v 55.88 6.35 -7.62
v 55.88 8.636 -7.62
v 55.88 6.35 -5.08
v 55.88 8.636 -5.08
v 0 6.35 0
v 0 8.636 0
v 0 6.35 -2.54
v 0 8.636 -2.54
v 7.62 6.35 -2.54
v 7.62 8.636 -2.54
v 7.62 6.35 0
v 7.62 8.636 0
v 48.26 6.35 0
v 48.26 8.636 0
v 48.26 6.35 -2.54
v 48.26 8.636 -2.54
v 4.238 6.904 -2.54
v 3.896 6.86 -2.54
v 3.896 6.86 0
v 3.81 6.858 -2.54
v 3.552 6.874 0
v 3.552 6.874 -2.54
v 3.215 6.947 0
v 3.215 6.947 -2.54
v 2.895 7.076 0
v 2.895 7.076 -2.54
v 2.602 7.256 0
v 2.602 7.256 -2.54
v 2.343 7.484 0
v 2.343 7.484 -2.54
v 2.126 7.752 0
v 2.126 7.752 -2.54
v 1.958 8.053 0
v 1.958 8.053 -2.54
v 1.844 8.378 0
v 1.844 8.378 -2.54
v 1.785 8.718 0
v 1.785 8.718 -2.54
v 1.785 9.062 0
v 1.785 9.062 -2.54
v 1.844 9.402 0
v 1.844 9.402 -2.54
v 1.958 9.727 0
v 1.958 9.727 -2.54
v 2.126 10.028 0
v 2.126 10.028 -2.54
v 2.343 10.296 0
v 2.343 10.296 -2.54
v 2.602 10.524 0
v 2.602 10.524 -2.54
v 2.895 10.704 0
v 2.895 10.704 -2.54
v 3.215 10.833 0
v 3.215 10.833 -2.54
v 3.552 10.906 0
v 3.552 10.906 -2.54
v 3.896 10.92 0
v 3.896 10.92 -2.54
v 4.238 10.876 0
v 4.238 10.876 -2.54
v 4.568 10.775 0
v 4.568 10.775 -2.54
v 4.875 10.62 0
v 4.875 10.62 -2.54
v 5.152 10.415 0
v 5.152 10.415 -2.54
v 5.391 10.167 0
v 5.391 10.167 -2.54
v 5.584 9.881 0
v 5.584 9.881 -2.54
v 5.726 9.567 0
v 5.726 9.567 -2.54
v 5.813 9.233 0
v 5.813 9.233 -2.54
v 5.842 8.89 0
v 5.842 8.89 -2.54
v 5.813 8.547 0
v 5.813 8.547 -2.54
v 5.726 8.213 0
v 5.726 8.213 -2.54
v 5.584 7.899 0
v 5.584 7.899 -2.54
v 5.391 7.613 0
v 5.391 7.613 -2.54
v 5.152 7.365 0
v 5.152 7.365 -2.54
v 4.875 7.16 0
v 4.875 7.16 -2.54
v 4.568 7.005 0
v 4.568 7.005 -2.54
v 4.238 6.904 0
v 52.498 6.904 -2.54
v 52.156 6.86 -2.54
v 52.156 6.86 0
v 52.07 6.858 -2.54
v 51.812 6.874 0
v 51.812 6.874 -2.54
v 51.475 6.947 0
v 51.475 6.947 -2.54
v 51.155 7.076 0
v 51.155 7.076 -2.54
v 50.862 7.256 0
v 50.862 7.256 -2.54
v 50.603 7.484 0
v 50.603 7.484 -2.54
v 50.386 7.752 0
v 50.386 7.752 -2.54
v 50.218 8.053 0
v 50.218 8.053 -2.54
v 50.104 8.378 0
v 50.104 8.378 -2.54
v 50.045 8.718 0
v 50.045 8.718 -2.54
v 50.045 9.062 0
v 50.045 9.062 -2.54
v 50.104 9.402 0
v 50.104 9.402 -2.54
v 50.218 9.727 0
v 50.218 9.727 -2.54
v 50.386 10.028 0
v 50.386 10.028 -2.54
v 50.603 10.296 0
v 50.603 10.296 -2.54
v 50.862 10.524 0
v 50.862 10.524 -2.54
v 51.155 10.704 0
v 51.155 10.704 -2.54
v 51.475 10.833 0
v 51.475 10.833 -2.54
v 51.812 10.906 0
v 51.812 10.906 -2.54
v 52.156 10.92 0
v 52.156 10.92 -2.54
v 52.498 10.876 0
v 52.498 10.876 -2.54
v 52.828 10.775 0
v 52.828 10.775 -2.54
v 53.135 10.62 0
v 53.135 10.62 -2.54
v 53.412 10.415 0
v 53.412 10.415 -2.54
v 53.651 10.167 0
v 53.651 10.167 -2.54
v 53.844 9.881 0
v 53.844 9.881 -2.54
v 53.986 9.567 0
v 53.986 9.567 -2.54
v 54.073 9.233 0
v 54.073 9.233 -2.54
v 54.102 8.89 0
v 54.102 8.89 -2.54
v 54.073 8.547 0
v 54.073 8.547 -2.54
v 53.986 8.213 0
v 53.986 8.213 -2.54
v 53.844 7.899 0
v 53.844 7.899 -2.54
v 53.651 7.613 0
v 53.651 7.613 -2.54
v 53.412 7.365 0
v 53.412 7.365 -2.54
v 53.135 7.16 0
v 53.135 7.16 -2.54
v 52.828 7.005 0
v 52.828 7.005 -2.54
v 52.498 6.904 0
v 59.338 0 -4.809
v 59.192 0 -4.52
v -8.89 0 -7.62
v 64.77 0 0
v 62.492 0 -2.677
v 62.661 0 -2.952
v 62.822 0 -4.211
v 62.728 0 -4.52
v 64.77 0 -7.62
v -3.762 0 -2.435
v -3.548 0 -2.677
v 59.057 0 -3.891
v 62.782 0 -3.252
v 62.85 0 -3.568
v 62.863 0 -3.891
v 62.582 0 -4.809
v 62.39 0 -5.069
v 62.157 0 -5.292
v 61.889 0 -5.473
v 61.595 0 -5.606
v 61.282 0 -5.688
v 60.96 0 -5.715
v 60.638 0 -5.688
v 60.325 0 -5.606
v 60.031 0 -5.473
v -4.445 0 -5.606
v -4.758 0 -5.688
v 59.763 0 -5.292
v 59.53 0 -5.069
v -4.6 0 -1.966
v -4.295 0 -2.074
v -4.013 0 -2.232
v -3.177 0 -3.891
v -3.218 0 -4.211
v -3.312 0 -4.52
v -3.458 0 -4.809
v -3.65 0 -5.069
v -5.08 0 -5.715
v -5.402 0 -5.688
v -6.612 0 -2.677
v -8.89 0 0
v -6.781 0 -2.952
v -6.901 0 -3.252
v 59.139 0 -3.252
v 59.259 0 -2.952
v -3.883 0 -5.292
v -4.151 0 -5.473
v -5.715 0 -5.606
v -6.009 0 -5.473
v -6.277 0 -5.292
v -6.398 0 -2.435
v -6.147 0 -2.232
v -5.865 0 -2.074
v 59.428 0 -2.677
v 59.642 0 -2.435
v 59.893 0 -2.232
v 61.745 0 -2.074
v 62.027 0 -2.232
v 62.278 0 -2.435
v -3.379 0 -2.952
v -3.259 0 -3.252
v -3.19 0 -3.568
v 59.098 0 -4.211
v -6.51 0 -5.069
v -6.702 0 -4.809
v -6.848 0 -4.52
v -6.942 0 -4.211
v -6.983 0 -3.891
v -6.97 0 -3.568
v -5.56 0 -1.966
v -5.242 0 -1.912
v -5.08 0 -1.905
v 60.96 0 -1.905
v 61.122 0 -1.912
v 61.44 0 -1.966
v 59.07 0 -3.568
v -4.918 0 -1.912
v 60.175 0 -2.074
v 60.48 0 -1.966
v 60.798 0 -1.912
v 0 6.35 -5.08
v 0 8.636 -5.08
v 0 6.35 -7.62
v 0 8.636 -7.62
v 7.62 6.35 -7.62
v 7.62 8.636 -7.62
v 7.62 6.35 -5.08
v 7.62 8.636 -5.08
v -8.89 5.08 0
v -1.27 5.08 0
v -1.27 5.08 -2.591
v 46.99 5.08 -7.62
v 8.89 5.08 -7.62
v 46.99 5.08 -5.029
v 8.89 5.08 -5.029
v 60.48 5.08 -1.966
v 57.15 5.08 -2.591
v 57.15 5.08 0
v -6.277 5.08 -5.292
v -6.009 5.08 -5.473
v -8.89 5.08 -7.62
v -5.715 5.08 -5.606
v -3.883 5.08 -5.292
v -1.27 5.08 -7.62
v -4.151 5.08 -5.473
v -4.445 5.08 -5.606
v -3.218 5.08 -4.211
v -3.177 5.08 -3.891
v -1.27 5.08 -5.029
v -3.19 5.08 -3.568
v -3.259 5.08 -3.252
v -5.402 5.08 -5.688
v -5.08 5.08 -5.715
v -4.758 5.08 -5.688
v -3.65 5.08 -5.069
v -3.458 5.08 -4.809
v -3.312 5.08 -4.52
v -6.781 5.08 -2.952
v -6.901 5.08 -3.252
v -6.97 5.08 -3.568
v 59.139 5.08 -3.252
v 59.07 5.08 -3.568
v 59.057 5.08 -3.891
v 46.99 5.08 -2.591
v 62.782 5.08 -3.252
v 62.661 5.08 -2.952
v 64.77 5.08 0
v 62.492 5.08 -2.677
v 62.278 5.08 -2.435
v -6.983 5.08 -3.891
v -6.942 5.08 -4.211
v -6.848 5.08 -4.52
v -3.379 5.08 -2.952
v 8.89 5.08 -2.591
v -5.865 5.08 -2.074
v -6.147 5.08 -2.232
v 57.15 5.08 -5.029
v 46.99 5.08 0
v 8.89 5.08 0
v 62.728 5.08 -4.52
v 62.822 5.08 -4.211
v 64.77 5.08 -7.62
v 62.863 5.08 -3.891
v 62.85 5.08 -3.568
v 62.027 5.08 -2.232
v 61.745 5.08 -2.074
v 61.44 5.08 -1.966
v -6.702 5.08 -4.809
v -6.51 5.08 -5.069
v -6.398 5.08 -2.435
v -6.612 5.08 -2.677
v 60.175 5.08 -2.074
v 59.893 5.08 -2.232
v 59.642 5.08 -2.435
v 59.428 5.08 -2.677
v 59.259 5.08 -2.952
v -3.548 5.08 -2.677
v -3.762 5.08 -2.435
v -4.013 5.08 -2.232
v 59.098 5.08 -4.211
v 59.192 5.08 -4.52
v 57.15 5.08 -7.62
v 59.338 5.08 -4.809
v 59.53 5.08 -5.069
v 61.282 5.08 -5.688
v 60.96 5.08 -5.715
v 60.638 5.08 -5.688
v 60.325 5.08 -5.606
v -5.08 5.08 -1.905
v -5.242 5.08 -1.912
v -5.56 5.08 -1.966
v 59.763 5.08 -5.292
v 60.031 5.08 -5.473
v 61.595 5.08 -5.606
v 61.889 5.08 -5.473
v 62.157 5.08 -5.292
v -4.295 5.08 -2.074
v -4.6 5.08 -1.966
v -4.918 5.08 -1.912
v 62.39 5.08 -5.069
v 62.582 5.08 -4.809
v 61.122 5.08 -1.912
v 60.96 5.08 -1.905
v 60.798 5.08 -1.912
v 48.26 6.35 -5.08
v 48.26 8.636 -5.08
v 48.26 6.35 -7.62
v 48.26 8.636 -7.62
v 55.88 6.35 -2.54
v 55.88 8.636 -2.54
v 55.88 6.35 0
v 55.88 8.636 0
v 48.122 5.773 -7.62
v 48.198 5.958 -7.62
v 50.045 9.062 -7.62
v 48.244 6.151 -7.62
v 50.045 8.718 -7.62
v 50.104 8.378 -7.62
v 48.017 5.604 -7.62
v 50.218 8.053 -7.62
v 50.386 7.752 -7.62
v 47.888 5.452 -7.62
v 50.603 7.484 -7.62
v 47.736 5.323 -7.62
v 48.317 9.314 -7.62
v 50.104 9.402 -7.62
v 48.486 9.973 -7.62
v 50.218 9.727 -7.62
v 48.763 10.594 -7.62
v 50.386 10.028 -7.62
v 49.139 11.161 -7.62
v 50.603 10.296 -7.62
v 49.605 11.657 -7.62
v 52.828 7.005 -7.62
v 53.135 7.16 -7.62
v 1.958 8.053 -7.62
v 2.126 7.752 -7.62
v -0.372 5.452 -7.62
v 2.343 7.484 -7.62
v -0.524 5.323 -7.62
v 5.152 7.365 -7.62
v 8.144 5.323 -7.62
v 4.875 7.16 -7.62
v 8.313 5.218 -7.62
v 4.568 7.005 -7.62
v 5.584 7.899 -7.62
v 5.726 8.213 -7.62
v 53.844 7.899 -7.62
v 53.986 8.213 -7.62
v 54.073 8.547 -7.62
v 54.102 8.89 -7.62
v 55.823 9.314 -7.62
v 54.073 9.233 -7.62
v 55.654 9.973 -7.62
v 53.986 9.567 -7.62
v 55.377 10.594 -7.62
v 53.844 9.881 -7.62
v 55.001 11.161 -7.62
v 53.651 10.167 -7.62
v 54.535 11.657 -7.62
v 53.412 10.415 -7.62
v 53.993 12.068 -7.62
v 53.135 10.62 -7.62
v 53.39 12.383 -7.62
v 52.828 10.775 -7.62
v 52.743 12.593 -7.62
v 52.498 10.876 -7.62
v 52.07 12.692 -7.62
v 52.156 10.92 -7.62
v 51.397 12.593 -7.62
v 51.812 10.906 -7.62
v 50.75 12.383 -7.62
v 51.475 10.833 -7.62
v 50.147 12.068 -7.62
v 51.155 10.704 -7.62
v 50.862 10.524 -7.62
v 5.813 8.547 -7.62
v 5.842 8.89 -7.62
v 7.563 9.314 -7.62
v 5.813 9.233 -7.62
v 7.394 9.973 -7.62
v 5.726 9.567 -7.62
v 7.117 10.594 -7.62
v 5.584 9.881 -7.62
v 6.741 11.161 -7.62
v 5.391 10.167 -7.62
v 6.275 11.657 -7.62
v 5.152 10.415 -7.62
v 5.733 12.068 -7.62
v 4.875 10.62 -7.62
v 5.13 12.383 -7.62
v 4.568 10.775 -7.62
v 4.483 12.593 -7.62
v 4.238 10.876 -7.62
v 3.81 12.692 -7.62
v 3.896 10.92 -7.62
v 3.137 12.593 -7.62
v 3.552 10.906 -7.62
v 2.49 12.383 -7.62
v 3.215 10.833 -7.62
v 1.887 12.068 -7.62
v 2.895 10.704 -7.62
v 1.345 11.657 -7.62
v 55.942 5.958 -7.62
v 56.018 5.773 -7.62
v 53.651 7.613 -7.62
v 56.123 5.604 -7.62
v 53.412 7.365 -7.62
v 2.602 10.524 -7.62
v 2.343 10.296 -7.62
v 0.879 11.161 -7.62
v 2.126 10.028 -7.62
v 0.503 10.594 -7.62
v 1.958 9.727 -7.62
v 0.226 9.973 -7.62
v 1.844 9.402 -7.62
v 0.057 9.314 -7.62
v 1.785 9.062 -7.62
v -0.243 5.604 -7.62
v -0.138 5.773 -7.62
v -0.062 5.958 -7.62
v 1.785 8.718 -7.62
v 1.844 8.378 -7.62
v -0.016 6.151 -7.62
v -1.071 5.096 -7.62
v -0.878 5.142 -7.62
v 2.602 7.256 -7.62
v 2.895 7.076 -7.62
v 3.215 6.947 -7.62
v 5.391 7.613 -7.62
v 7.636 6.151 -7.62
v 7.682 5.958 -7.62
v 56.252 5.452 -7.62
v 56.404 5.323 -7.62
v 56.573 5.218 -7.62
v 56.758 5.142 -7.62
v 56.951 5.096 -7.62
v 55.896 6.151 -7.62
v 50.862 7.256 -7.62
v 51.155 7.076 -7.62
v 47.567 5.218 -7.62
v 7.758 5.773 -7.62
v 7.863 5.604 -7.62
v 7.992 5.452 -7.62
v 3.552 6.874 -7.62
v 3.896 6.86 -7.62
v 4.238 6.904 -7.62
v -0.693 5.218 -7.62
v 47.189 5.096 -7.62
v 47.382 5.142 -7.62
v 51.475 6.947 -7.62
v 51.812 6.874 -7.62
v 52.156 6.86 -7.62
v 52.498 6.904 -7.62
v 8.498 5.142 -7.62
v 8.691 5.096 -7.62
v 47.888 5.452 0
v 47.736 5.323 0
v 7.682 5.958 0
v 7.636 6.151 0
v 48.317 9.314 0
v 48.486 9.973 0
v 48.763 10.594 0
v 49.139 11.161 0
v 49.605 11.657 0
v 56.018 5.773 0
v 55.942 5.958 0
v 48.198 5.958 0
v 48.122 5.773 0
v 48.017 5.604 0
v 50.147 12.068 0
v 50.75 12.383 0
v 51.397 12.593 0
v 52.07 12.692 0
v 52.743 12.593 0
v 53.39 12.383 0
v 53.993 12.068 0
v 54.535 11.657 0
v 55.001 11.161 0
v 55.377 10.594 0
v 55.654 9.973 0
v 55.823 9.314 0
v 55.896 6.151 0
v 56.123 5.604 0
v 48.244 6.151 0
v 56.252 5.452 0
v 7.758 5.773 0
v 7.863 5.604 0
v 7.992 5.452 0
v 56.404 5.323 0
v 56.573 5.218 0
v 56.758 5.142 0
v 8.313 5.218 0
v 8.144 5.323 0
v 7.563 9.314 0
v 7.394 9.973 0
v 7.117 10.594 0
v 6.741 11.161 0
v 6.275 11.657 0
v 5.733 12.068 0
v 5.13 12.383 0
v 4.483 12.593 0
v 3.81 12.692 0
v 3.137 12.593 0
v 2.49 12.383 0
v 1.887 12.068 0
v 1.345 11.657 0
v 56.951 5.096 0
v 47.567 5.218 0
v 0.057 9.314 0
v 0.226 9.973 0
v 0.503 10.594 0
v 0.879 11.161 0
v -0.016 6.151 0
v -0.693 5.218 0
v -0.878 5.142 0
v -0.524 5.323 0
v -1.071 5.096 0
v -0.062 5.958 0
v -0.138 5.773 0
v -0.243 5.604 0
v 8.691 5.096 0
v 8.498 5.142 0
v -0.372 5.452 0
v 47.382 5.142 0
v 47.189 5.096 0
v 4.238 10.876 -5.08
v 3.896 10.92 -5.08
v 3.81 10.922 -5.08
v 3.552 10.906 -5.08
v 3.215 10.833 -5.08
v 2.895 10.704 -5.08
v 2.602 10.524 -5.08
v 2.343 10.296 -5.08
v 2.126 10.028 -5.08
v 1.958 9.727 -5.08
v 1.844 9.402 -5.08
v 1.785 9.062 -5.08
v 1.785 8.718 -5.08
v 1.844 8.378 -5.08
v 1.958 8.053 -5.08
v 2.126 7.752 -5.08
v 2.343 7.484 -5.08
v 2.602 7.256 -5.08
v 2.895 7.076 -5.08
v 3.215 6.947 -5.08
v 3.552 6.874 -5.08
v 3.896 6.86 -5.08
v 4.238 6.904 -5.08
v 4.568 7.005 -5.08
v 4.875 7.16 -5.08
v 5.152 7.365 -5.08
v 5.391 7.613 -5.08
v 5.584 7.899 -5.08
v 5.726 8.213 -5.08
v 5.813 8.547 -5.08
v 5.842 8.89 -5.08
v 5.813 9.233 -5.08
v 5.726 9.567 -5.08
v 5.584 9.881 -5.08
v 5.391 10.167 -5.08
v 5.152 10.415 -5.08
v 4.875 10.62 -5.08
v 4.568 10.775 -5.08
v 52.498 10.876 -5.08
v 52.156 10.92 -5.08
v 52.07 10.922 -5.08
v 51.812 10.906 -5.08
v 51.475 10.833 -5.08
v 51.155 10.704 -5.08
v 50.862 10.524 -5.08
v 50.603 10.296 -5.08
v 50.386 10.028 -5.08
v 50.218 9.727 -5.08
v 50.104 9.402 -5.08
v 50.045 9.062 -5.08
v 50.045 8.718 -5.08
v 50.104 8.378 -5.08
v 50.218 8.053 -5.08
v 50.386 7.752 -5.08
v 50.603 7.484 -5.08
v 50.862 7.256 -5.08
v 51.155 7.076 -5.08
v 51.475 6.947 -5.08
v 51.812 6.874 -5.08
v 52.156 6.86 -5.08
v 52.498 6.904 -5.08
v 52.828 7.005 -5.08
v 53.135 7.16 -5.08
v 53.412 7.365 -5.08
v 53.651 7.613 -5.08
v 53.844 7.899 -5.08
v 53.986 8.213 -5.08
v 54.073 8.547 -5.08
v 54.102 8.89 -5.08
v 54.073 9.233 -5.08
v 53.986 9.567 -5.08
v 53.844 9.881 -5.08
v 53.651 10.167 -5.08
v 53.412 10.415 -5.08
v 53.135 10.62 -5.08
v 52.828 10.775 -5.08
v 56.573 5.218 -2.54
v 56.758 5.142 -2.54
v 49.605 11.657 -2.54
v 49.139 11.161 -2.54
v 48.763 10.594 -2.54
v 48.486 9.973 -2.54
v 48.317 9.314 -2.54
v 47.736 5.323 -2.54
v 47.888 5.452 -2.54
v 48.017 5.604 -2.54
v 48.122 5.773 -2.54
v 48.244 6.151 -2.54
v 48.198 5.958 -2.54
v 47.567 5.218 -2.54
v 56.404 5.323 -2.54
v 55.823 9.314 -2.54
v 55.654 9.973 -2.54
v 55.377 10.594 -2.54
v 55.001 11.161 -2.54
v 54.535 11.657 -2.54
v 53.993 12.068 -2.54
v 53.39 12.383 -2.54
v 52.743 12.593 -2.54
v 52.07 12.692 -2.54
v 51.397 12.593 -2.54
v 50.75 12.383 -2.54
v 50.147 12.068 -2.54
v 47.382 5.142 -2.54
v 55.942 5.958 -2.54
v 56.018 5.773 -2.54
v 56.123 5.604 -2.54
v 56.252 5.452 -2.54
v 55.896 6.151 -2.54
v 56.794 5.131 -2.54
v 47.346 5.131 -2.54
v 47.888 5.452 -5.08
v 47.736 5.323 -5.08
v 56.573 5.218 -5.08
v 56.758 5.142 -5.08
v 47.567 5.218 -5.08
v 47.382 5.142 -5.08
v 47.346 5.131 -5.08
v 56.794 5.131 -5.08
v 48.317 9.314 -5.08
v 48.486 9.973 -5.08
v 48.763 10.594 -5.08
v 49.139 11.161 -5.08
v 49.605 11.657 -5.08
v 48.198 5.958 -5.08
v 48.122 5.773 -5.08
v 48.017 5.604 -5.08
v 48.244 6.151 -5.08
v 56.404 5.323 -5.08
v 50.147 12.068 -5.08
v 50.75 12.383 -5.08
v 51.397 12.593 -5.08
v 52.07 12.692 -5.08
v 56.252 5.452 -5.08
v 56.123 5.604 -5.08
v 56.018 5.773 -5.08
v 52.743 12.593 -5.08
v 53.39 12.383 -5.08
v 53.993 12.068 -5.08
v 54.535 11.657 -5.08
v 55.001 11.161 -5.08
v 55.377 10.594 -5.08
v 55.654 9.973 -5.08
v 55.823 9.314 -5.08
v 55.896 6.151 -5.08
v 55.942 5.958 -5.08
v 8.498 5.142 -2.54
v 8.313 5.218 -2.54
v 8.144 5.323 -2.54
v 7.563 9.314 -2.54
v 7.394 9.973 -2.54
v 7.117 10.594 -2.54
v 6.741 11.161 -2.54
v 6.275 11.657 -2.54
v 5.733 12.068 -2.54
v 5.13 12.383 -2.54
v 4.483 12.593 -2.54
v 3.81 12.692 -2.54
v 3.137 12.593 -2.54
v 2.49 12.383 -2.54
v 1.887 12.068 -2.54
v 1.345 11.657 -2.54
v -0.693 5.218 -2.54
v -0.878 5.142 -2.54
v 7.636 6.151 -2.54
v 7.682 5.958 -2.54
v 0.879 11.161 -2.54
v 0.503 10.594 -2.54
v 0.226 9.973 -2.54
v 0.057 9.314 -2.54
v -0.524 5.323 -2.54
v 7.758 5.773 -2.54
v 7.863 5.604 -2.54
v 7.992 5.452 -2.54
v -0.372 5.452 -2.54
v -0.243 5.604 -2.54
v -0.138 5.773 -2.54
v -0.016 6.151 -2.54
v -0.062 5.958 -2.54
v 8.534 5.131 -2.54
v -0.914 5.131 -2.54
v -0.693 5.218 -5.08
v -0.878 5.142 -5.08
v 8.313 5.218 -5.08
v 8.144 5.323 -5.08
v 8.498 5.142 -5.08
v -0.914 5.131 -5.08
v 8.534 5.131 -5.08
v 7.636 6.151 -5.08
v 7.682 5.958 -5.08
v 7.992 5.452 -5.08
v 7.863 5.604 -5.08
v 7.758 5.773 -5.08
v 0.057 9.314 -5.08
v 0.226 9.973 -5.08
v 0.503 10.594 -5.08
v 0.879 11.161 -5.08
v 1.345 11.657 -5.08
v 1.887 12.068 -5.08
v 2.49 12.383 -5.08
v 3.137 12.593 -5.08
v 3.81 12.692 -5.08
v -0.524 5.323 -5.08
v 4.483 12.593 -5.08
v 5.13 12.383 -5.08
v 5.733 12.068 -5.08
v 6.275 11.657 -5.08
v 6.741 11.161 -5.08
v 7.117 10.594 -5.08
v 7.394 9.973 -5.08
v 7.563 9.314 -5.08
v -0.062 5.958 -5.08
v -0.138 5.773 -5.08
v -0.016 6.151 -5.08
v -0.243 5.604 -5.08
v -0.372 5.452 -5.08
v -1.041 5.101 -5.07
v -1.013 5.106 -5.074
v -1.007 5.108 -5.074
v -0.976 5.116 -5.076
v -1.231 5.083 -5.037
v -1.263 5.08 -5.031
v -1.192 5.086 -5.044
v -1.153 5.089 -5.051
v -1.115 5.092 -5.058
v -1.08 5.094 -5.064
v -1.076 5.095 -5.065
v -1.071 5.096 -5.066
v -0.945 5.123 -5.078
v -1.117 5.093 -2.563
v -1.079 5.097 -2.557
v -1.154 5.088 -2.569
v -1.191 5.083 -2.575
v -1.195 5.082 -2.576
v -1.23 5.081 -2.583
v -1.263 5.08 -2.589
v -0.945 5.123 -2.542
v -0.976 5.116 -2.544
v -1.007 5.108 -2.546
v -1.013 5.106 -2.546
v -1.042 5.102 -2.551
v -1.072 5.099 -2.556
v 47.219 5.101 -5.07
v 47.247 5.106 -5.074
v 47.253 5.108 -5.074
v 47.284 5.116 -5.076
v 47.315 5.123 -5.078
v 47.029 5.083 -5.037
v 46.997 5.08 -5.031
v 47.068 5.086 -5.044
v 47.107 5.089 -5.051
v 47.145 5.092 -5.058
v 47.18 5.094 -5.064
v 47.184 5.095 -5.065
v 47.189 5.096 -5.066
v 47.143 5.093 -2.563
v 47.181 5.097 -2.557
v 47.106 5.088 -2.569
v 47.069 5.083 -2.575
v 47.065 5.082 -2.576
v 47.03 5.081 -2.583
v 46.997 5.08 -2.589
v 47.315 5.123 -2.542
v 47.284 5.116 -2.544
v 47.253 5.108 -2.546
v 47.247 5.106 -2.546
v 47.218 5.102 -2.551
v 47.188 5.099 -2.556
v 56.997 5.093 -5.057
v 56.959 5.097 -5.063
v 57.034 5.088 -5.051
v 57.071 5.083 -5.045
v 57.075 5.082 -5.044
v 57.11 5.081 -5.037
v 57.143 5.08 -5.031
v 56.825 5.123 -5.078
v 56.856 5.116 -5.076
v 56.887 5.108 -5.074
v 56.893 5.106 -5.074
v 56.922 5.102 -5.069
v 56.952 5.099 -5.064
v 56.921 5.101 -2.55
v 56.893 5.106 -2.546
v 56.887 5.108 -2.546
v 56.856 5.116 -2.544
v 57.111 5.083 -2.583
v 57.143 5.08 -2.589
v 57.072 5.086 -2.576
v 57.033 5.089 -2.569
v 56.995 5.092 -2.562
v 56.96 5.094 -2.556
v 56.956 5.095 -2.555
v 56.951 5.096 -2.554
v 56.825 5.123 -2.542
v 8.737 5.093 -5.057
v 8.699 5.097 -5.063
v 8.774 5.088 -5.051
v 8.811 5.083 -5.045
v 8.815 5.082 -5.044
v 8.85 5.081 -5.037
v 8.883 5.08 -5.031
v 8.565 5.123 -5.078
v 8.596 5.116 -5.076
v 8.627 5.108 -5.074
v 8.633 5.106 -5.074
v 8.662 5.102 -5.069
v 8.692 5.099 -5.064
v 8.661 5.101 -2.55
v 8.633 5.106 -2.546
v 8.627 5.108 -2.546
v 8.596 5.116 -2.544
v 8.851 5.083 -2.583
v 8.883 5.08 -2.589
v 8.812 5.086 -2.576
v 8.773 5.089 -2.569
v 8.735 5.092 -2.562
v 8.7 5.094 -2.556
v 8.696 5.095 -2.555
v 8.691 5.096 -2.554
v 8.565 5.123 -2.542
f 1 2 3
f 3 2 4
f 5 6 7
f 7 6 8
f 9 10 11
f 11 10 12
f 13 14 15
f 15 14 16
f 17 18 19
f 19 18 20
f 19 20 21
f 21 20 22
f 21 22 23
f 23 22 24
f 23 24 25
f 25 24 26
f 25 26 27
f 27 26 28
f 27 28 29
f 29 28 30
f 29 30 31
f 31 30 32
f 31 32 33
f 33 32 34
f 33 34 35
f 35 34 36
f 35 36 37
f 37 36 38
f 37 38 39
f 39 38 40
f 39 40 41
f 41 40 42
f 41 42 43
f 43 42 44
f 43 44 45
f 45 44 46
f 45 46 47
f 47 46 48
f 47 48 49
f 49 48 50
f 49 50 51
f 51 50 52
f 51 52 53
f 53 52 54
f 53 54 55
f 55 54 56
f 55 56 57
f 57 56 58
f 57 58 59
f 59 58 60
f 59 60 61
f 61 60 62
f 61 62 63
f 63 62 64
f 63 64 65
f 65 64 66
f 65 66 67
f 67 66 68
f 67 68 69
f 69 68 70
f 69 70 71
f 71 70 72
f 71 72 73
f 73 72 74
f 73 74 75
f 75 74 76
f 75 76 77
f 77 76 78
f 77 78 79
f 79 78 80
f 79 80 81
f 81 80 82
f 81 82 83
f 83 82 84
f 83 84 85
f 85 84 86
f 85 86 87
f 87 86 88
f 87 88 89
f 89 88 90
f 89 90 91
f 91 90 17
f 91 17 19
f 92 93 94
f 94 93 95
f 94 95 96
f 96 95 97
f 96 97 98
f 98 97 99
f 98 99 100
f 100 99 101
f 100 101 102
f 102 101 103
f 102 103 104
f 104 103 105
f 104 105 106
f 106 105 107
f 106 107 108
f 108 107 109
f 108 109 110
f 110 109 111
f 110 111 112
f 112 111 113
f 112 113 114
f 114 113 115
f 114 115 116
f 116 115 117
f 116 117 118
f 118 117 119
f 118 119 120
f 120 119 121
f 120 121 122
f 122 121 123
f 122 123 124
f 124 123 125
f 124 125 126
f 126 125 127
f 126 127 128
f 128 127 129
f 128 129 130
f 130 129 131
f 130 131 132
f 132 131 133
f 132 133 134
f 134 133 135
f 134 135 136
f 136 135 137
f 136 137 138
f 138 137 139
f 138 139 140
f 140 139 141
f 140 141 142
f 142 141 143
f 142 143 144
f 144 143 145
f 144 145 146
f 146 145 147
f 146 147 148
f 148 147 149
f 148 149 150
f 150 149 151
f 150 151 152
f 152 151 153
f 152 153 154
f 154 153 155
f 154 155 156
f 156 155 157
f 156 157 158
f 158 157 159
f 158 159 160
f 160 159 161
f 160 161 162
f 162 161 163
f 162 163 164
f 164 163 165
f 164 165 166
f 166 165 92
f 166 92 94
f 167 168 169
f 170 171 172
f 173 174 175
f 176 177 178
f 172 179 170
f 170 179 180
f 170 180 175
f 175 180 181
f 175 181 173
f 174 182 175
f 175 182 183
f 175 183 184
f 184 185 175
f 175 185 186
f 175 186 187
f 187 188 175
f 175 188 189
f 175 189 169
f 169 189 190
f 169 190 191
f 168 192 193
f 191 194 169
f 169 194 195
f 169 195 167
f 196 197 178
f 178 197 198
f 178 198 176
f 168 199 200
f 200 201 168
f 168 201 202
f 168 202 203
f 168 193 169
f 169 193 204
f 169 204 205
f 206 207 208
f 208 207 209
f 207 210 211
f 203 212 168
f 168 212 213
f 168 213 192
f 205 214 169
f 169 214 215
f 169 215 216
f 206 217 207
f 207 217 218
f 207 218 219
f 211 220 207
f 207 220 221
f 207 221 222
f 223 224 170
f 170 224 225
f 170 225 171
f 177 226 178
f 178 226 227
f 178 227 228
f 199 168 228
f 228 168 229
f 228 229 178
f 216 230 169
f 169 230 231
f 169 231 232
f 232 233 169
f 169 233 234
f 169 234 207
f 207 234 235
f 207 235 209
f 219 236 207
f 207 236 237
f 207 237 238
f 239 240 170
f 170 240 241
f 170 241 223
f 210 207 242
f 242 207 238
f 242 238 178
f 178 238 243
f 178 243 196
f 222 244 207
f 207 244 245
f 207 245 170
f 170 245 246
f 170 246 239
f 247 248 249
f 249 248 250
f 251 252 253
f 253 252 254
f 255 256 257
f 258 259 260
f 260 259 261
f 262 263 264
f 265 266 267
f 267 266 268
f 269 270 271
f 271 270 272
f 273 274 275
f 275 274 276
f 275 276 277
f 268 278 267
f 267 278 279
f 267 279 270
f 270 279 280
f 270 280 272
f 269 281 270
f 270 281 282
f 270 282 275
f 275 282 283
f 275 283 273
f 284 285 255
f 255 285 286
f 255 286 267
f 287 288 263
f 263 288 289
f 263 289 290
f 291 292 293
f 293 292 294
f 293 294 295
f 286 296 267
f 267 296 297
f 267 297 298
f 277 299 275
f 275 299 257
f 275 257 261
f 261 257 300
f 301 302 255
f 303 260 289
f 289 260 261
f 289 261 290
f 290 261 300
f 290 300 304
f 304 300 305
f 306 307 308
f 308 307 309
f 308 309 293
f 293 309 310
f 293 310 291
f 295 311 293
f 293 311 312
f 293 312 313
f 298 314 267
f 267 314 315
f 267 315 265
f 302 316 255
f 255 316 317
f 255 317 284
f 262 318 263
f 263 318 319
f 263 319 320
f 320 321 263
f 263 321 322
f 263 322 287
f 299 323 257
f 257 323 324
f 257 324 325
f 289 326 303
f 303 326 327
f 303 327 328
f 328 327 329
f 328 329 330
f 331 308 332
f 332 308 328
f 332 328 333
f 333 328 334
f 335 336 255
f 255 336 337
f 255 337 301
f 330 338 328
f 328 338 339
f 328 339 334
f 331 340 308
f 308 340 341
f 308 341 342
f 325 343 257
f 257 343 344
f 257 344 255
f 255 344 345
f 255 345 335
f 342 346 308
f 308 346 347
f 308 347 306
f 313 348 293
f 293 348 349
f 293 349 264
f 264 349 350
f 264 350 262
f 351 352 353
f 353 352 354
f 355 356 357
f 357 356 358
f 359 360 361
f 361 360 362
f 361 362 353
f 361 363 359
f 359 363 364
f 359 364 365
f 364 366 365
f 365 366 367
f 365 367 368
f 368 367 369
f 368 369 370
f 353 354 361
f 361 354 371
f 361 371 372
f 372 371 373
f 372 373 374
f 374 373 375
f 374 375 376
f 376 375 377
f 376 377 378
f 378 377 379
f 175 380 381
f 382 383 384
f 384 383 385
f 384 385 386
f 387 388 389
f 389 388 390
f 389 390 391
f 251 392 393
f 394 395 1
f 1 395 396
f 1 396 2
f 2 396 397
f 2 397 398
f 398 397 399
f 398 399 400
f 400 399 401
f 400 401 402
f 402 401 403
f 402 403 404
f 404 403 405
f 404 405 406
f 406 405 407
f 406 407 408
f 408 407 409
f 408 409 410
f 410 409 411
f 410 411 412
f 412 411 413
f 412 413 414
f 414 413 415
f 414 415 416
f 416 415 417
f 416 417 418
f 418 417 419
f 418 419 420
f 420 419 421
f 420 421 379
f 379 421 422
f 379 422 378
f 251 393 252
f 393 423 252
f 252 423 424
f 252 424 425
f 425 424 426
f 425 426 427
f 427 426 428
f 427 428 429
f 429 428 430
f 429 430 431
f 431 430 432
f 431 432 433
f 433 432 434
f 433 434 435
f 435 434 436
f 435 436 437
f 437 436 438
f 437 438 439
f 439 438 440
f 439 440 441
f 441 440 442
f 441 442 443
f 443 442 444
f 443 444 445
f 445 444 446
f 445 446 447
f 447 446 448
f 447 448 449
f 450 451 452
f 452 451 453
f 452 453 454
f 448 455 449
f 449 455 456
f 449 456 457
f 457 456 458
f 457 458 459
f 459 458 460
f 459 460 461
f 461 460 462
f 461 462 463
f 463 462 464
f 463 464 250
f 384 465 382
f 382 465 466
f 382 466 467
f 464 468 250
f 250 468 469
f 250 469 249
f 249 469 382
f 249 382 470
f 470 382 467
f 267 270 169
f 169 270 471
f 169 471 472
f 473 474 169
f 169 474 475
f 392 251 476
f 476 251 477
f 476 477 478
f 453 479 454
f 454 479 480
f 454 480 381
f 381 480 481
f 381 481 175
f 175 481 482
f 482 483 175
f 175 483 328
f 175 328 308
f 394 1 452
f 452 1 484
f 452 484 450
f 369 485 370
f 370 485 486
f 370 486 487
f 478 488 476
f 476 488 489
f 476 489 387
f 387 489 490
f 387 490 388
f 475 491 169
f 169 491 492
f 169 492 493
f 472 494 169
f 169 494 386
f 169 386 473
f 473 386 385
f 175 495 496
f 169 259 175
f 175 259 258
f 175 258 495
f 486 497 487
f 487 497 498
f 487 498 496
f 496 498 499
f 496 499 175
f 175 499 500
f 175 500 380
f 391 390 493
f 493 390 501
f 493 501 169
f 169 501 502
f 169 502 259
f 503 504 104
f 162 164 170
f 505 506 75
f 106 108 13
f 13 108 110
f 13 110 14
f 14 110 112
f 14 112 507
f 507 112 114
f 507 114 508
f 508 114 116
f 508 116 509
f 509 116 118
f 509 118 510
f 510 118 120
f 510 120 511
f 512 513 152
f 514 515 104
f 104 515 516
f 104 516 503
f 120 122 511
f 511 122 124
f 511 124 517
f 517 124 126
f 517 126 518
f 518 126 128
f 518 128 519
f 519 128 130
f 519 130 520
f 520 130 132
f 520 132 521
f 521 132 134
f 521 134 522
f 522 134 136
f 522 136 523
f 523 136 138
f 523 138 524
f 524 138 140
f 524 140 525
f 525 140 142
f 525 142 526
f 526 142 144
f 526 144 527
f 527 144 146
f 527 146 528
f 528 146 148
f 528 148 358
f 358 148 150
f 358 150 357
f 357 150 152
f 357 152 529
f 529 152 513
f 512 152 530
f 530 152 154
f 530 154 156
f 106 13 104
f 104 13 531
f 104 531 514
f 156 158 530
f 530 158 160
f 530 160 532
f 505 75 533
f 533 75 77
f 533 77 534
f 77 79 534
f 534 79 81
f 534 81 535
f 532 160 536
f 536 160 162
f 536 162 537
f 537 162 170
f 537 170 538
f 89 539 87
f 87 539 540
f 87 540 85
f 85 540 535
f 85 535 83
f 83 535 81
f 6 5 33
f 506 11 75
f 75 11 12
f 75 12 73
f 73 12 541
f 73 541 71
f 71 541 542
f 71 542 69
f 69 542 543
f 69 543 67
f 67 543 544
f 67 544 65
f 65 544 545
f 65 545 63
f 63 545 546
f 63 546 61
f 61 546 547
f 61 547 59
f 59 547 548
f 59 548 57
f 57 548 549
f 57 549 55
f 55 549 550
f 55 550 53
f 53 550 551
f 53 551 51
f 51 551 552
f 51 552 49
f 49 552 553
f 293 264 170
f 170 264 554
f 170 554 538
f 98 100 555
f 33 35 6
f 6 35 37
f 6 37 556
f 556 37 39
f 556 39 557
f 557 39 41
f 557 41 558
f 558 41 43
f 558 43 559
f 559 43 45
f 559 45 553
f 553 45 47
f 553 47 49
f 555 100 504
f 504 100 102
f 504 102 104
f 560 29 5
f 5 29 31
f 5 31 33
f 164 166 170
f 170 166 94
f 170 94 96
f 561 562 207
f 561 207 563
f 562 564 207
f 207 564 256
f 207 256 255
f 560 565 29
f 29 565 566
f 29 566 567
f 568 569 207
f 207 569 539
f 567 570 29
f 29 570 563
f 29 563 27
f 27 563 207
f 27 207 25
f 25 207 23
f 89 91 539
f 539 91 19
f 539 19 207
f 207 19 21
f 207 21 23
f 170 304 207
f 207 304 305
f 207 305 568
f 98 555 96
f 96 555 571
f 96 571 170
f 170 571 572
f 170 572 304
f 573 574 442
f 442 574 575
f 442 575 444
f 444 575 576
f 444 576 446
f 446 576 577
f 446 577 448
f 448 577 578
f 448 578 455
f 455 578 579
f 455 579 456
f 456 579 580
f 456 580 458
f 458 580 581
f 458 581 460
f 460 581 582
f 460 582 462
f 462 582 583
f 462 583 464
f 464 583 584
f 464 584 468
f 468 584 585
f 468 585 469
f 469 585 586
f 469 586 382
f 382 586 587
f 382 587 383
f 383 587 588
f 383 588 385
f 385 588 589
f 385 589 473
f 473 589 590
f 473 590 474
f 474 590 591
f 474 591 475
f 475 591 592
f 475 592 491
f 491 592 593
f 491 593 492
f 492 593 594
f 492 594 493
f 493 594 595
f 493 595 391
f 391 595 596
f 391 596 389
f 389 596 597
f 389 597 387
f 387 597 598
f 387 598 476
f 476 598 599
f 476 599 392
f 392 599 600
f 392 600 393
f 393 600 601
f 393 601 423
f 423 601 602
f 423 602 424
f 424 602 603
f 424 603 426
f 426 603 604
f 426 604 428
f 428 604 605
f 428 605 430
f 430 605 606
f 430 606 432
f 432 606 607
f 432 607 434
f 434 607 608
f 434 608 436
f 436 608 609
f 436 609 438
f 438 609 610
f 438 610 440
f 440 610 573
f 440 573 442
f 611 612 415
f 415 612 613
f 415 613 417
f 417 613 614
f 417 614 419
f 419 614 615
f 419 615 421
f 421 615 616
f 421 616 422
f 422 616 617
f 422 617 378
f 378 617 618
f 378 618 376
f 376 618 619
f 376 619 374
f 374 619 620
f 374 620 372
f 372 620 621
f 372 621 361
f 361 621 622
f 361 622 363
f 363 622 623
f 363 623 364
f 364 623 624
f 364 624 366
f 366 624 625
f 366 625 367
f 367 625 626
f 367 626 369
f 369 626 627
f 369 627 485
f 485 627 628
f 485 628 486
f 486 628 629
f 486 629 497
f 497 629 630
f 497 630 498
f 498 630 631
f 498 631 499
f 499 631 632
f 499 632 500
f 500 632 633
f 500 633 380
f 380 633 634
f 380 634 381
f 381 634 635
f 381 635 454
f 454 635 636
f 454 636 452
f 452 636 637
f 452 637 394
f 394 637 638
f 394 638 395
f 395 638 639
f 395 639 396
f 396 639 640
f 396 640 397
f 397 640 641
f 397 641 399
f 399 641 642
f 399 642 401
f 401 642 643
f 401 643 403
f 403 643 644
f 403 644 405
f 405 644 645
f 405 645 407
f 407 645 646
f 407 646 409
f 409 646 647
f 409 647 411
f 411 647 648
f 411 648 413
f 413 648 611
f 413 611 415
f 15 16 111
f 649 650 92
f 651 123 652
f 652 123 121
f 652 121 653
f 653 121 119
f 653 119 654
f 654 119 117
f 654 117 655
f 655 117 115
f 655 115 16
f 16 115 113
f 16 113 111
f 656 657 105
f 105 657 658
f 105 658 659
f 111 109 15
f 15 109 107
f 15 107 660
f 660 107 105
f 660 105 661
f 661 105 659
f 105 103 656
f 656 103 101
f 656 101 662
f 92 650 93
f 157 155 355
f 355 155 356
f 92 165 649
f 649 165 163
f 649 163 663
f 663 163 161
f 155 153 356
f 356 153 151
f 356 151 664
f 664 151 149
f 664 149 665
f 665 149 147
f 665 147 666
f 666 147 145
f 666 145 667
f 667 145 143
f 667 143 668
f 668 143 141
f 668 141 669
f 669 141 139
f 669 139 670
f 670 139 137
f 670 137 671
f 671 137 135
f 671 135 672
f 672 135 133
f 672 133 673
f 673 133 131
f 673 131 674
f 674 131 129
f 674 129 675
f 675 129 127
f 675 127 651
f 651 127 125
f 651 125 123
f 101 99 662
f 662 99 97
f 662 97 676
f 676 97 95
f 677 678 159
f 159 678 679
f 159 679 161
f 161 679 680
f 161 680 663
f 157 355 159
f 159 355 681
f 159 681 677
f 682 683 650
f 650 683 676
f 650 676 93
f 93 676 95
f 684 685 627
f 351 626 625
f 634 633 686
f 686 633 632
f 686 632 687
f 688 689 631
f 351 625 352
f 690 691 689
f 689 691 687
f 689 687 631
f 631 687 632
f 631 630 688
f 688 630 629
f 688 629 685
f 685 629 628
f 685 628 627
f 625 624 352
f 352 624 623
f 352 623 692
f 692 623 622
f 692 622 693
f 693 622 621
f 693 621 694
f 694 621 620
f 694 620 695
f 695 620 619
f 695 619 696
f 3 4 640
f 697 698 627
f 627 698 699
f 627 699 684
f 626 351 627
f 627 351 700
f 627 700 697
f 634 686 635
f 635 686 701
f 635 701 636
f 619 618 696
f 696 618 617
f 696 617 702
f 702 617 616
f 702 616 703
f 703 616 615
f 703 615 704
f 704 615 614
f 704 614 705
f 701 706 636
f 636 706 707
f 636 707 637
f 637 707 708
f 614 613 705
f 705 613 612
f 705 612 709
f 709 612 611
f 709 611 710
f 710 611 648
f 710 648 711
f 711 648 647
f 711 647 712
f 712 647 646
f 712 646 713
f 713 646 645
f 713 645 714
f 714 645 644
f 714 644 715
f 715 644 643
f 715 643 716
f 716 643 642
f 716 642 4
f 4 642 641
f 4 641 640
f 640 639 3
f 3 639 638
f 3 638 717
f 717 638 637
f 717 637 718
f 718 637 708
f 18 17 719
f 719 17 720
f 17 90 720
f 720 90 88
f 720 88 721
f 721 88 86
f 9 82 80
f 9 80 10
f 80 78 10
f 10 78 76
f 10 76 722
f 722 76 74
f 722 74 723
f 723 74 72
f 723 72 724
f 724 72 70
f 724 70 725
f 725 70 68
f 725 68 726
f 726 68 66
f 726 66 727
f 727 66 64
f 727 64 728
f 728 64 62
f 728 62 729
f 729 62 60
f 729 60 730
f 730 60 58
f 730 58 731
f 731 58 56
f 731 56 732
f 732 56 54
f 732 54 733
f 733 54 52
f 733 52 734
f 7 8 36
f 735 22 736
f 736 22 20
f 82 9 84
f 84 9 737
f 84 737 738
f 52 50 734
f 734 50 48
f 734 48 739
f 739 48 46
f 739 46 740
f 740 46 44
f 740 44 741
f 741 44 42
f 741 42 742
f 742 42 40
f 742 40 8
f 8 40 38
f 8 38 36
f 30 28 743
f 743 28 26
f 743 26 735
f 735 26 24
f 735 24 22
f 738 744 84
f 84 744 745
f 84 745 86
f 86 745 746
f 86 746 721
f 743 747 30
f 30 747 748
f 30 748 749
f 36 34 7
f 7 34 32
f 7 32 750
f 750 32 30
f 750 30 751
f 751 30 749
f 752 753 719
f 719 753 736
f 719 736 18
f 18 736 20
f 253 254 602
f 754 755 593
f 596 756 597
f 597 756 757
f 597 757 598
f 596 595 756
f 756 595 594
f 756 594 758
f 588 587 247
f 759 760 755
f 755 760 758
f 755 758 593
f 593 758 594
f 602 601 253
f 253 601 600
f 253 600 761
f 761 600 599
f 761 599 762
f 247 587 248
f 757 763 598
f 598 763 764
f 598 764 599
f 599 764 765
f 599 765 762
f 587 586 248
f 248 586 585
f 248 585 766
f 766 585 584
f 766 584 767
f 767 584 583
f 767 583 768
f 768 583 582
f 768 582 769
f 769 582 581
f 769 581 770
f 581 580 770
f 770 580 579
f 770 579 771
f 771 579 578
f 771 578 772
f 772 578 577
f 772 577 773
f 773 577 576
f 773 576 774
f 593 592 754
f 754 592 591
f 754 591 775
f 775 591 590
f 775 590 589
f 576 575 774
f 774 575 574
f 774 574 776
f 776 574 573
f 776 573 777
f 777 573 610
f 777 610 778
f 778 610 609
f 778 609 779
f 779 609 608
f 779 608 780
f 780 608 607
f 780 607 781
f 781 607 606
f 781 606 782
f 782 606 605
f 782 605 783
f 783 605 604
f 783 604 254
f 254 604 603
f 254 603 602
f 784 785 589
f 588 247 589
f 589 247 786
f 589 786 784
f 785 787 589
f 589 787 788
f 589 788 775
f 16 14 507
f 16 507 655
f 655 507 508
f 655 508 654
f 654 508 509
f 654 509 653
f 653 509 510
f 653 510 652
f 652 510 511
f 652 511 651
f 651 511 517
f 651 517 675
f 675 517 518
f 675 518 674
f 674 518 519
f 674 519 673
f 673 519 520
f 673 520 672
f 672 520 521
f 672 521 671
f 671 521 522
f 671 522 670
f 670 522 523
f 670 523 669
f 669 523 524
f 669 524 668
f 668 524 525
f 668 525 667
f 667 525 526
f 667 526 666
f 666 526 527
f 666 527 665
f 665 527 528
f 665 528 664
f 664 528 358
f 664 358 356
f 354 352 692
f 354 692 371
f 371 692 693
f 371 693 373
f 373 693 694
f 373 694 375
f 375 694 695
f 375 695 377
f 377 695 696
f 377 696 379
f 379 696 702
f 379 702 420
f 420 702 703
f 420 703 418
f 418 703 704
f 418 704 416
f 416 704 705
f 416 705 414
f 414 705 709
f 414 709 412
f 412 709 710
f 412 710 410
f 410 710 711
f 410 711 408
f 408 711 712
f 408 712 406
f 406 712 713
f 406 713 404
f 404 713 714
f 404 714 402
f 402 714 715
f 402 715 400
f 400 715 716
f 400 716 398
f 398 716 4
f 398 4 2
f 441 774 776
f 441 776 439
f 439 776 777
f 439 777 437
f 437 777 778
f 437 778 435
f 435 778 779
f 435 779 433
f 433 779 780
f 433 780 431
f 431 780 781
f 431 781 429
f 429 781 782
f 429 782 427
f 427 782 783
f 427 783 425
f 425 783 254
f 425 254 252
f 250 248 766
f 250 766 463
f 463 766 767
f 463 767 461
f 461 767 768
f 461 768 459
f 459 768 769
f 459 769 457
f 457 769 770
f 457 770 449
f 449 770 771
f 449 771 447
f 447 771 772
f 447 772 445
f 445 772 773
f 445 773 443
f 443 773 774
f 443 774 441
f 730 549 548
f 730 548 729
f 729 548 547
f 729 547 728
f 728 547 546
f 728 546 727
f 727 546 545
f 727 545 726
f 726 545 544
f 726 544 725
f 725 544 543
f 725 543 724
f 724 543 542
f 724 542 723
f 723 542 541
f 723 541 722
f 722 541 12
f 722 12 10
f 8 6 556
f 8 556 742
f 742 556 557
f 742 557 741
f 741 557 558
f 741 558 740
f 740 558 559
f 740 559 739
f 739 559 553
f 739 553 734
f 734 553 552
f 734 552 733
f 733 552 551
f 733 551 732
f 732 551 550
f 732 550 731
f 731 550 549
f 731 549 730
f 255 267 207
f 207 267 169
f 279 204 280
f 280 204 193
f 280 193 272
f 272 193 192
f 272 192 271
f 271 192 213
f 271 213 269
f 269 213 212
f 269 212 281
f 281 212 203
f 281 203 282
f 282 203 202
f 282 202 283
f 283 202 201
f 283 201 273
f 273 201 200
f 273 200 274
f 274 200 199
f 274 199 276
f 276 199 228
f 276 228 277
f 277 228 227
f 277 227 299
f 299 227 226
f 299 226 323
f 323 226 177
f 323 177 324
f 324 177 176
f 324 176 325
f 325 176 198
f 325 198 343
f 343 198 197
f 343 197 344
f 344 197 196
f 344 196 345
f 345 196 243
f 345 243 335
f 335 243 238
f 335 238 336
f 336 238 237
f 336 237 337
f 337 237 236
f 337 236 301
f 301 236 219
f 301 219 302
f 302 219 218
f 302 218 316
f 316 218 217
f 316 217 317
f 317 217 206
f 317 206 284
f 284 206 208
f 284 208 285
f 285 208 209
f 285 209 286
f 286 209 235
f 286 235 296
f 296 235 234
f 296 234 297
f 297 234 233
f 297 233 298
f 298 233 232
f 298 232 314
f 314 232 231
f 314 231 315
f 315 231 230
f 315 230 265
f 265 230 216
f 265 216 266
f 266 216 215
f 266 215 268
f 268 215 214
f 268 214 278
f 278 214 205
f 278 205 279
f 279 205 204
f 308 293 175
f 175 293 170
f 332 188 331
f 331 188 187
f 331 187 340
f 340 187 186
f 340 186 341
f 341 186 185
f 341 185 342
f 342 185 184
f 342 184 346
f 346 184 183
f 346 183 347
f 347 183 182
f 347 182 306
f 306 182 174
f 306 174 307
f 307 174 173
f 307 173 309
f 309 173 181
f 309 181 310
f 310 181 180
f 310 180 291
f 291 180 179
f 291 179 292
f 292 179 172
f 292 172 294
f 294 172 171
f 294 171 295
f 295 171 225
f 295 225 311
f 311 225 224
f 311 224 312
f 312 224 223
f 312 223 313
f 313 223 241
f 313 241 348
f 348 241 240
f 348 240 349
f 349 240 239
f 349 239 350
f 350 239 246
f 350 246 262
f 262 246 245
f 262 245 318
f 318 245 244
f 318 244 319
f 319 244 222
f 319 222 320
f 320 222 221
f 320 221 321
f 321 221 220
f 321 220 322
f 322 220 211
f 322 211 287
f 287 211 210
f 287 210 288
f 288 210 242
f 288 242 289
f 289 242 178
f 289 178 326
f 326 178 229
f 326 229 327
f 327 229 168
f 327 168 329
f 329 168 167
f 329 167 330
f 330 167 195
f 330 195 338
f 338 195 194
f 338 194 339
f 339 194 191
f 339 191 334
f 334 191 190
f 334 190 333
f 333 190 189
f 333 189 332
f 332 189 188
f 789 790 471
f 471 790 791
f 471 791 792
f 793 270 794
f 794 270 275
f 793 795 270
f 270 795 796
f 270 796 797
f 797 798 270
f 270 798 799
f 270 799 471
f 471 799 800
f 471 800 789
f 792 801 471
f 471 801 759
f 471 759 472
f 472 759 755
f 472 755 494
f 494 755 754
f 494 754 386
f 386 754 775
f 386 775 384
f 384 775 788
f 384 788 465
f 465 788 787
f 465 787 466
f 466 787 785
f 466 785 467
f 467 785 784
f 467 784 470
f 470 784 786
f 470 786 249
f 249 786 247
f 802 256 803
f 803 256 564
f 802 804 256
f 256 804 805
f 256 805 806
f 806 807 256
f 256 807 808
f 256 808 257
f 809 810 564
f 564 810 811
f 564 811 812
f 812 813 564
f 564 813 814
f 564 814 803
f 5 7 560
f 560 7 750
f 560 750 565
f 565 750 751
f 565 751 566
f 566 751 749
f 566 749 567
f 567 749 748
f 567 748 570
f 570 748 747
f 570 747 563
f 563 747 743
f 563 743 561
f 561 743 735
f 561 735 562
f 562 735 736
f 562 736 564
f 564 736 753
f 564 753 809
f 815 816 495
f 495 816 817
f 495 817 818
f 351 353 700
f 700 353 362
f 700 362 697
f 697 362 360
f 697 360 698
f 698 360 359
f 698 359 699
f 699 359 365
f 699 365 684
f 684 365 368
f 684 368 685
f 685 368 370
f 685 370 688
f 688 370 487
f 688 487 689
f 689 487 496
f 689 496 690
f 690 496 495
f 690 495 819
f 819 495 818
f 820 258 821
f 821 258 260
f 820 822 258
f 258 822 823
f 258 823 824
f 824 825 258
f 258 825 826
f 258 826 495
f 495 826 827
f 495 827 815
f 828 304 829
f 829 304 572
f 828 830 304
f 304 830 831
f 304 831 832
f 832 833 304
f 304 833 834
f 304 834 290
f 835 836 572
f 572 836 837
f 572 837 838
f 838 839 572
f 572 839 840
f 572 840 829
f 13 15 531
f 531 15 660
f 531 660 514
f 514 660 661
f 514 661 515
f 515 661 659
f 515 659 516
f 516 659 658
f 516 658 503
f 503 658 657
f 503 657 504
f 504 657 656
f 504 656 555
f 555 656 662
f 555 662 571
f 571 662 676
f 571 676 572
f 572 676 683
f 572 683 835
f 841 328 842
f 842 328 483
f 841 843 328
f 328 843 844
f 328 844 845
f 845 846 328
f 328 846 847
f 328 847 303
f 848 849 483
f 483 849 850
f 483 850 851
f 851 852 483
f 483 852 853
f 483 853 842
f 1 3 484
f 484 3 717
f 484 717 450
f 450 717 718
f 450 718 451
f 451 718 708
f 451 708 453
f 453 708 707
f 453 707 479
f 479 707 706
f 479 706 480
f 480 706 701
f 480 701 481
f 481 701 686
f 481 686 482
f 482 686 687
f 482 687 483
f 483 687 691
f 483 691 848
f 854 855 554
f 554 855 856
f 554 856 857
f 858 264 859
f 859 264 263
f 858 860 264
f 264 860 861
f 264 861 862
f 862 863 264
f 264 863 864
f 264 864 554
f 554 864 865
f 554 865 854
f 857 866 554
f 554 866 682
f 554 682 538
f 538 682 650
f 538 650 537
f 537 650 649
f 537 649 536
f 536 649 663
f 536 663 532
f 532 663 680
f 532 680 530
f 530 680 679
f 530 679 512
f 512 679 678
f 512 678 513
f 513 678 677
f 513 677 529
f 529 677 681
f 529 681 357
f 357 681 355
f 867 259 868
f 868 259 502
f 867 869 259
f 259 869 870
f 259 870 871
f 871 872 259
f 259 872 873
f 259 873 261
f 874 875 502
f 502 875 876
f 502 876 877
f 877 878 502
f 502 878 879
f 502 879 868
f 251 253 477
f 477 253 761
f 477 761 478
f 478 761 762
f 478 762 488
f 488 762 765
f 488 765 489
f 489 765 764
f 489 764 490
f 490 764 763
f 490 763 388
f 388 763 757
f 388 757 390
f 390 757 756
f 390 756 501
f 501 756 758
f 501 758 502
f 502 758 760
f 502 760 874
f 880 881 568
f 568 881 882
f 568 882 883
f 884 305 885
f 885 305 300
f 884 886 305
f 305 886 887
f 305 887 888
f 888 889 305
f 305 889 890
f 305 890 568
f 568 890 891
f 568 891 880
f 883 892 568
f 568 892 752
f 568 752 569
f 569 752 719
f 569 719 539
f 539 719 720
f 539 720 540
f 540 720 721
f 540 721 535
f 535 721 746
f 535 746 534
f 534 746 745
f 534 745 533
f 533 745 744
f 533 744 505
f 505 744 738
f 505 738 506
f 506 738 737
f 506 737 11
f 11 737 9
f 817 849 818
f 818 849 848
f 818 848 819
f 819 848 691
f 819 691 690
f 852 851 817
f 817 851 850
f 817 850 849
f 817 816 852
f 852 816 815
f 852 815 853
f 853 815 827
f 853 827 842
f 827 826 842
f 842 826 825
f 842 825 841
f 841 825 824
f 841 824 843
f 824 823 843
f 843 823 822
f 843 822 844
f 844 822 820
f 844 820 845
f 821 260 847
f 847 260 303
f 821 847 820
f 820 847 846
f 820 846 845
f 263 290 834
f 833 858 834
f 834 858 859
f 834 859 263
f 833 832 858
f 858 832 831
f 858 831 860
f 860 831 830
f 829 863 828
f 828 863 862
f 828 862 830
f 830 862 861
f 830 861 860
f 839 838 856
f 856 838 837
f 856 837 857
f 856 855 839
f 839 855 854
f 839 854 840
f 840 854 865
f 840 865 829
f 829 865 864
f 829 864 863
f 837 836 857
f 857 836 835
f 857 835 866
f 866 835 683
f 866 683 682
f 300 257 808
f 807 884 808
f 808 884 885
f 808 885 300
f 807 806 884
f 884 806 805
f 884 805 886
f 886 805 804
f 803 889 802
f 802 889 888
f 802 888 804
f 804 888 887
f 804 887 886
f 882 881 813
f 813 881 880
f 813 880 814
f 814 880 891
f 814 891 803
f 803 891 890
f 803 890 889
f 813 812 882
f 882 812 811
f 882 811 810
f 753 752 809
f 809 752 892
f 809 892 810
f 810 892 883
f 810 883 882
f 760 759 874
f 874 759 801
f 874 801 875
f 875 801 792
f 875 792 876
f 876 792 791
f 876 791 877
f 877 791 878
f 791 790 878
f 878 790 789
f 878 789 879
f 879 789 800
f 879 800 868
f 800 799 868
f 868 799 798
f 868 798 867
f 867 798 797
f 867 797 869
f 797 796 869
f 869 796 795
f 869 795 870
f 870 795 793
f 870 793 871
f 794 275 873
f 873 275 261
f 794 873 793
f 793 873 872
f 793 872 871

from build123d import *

# Parameters (mm, degrees)
SKETCH1_R           = 2.032
BOSS_EXTRUDE1_DEPTH = 7.62
SKETCH3_W           = 2.54
SKETCH3_H           = 7.62
CUT_EXTRUDE1_DEPTH  = 55.88
FILLET2_R           = 4.064
SKETCH5_W           = 8.89
SKETCH5_H           = 7.62
SKETCH5_R           = 1.905
BOSS_EXTRUDE2_DEPTH = 5.08
FILLET3_R           = 1.27
FILLET4_R           = 0.0508


with BuildPart() as part:
    # Sketch1 → Boss-Extrude1 (new body)
    with BuildSketch(Plane.XY):
        Polygon((0, 0), (0, 12.7), (7.62, 12.7), (7.62, 5.08), (48.26, 5.08), (48.26, 12.7), (55.88, 12.7), (55.88, 0), align=None)
        with Locations((3.81, 8.89)):
            Circle(SKETCH1_R, mode=Mode.SUBTRACT)
        with Locations((52.07, 8.89)):
            Circle(SKETCH1_R, mode=Mode.SUBTRACT)
    extrude(amount=-BOSS_EXTRUDE1_DEPTH)

    # Sketch3 → Cut-Extrude1 (cut)
    with BuildSketch(Plane(origin=(55.88, 0, 0), x_dir=(0, 0, -1), z_dir=(1, 0, 0))):
        with Locations((3.81, 8.89)):
            Rectangle(SKETCH3_W, SKETCH3_H)
    extrude(amount=-CUT_EXTRUDE1_DEPTH, mode=Mode.SUBTRACT)

    # Fillet2
    # the kernel refuses this fillet: 4.064 mm, written as the material it takes off along each edge
    with BuildSketch(Plane(origin=(48.26, 12.7, 5.08), x_dir=(0, -1, 0), z_dir=(0, 0, -1)), Plane(origin=(48.26, 12.7, 10.16), x_dir=(0, -1, 0), z_dir=(0, 0, -1)), Plane(origin=(7.62, 12.7, 5.08), x_dir=(-1, 0, 0), z_dir=(0, 0, -1)), Plane(origin=(7.62, 12.7, 10.16), x_dir=(-1, 0, 0), z_dir=(0, 0, -1)), Plane(origin=(55.88, 12.7, 10.16), x_dir=(-1, 0, 0), z_dir=(0, 0, -1)), Plane(origin=(0, 12.7, 5.08), x_dir=(0, -1, 0), z_dir=(0, 0, -1)), Plane(origin=(0, 12.7, 10.16), x_dir=(0, -1, 0), z_dir=(0, 0, -1))) as fillet2_piece_1:
        with BuildLine():
            CenterArc((FILLET2_R, -FILLET2_R), FILLET2_R, 90, 90)
            Line((0, -FILLET2_R), (0, 0))
            Line((0, 0), (FILLET2_R, 0))
        make_face()
    extrude(amount=22.86, mode=Mode.SUBTRACT)
    with BuildSketch(Plane(origin=(55.88, 12.7, 5.08), x_dir=(0, -1, 0), z_dir=(0, 0, -1))) as fillet2_piece_2:
        with BuildLine():
            CenterArc((FILLET2_R, FILLET2_R), FILLET2_R, 180, 90)
            Line((0, FILLET2_R), (0, 0))
            Line((0, 0), (FILLET2_R, 0))
        make_face()
    extrude(amount=22.86, mode=Mode.SUBTRACT)

    # Sketch5 → Boss-Extrude2 (add)
    # profile 1 of 2: a face of its own
    with BuildSketch(Plane(origin=(0, 0, 0), x_dir=(1, 0, 0), z_dir=(0, 1, 0))):
        with Locations((-4.445, 3.81)):
            Rectangle(SKETCH5_W, SKETCH5_H)
        with Locations(Location((-5.08, 3.81, 0), (0, 0, 270))):
            Circle(SKETCH5_R, mode=Mode.SUBTRACT)
    # profile 2 of 2: a face of its own
    with BuildSketch(Plane(origin=(0, 0, 0), x_dir=(1, 0, 0), z_dir=(0, 1, 0))):
        with Locations((60.325, 3.81)):
            Rectangle(SKETCH5_W, SKETCH5_H)
        with Locations(Location((60.96, 3.81, 0), (0, 0, 270))):
            Circle(SKETCH5_R, mode=Mode.SUBTRACT)
    extrude(amount=BOSS_EXTRUDE2_DEPTH)

    # Fillet3
    fillet3_edges = [part.edges().sort_by_distance(p)[0] for p in [
        (0, 5.08, -1.27),
        (0, 5.08, -6.35),
        (55.88, 5.08, -6.35),
        (55.88, 5.08, -1.27),
        (7.62, 5.08, -6.35),
        (48.26, 5.08, -6.35),
        (48.26, 5.08, -1.27),
        (7.62, 5.08, -1.27),
    ]]
    fillet(fillet3_edges, radius=FILLET3_R)

    # Fillet4
    fillet4_edges = [part.edges().sort_by_distance(p)[0] for p in [
        (3.81, 5.08, -5.08),
        (3.81, 5.08, -2.54),
        (52.07, 5.08, -2.54),
        (52.07, 5.08, -5.08),
    ]]
    fillet(fillet4_edges, radius=FILLET4_R)


solid = part.part
